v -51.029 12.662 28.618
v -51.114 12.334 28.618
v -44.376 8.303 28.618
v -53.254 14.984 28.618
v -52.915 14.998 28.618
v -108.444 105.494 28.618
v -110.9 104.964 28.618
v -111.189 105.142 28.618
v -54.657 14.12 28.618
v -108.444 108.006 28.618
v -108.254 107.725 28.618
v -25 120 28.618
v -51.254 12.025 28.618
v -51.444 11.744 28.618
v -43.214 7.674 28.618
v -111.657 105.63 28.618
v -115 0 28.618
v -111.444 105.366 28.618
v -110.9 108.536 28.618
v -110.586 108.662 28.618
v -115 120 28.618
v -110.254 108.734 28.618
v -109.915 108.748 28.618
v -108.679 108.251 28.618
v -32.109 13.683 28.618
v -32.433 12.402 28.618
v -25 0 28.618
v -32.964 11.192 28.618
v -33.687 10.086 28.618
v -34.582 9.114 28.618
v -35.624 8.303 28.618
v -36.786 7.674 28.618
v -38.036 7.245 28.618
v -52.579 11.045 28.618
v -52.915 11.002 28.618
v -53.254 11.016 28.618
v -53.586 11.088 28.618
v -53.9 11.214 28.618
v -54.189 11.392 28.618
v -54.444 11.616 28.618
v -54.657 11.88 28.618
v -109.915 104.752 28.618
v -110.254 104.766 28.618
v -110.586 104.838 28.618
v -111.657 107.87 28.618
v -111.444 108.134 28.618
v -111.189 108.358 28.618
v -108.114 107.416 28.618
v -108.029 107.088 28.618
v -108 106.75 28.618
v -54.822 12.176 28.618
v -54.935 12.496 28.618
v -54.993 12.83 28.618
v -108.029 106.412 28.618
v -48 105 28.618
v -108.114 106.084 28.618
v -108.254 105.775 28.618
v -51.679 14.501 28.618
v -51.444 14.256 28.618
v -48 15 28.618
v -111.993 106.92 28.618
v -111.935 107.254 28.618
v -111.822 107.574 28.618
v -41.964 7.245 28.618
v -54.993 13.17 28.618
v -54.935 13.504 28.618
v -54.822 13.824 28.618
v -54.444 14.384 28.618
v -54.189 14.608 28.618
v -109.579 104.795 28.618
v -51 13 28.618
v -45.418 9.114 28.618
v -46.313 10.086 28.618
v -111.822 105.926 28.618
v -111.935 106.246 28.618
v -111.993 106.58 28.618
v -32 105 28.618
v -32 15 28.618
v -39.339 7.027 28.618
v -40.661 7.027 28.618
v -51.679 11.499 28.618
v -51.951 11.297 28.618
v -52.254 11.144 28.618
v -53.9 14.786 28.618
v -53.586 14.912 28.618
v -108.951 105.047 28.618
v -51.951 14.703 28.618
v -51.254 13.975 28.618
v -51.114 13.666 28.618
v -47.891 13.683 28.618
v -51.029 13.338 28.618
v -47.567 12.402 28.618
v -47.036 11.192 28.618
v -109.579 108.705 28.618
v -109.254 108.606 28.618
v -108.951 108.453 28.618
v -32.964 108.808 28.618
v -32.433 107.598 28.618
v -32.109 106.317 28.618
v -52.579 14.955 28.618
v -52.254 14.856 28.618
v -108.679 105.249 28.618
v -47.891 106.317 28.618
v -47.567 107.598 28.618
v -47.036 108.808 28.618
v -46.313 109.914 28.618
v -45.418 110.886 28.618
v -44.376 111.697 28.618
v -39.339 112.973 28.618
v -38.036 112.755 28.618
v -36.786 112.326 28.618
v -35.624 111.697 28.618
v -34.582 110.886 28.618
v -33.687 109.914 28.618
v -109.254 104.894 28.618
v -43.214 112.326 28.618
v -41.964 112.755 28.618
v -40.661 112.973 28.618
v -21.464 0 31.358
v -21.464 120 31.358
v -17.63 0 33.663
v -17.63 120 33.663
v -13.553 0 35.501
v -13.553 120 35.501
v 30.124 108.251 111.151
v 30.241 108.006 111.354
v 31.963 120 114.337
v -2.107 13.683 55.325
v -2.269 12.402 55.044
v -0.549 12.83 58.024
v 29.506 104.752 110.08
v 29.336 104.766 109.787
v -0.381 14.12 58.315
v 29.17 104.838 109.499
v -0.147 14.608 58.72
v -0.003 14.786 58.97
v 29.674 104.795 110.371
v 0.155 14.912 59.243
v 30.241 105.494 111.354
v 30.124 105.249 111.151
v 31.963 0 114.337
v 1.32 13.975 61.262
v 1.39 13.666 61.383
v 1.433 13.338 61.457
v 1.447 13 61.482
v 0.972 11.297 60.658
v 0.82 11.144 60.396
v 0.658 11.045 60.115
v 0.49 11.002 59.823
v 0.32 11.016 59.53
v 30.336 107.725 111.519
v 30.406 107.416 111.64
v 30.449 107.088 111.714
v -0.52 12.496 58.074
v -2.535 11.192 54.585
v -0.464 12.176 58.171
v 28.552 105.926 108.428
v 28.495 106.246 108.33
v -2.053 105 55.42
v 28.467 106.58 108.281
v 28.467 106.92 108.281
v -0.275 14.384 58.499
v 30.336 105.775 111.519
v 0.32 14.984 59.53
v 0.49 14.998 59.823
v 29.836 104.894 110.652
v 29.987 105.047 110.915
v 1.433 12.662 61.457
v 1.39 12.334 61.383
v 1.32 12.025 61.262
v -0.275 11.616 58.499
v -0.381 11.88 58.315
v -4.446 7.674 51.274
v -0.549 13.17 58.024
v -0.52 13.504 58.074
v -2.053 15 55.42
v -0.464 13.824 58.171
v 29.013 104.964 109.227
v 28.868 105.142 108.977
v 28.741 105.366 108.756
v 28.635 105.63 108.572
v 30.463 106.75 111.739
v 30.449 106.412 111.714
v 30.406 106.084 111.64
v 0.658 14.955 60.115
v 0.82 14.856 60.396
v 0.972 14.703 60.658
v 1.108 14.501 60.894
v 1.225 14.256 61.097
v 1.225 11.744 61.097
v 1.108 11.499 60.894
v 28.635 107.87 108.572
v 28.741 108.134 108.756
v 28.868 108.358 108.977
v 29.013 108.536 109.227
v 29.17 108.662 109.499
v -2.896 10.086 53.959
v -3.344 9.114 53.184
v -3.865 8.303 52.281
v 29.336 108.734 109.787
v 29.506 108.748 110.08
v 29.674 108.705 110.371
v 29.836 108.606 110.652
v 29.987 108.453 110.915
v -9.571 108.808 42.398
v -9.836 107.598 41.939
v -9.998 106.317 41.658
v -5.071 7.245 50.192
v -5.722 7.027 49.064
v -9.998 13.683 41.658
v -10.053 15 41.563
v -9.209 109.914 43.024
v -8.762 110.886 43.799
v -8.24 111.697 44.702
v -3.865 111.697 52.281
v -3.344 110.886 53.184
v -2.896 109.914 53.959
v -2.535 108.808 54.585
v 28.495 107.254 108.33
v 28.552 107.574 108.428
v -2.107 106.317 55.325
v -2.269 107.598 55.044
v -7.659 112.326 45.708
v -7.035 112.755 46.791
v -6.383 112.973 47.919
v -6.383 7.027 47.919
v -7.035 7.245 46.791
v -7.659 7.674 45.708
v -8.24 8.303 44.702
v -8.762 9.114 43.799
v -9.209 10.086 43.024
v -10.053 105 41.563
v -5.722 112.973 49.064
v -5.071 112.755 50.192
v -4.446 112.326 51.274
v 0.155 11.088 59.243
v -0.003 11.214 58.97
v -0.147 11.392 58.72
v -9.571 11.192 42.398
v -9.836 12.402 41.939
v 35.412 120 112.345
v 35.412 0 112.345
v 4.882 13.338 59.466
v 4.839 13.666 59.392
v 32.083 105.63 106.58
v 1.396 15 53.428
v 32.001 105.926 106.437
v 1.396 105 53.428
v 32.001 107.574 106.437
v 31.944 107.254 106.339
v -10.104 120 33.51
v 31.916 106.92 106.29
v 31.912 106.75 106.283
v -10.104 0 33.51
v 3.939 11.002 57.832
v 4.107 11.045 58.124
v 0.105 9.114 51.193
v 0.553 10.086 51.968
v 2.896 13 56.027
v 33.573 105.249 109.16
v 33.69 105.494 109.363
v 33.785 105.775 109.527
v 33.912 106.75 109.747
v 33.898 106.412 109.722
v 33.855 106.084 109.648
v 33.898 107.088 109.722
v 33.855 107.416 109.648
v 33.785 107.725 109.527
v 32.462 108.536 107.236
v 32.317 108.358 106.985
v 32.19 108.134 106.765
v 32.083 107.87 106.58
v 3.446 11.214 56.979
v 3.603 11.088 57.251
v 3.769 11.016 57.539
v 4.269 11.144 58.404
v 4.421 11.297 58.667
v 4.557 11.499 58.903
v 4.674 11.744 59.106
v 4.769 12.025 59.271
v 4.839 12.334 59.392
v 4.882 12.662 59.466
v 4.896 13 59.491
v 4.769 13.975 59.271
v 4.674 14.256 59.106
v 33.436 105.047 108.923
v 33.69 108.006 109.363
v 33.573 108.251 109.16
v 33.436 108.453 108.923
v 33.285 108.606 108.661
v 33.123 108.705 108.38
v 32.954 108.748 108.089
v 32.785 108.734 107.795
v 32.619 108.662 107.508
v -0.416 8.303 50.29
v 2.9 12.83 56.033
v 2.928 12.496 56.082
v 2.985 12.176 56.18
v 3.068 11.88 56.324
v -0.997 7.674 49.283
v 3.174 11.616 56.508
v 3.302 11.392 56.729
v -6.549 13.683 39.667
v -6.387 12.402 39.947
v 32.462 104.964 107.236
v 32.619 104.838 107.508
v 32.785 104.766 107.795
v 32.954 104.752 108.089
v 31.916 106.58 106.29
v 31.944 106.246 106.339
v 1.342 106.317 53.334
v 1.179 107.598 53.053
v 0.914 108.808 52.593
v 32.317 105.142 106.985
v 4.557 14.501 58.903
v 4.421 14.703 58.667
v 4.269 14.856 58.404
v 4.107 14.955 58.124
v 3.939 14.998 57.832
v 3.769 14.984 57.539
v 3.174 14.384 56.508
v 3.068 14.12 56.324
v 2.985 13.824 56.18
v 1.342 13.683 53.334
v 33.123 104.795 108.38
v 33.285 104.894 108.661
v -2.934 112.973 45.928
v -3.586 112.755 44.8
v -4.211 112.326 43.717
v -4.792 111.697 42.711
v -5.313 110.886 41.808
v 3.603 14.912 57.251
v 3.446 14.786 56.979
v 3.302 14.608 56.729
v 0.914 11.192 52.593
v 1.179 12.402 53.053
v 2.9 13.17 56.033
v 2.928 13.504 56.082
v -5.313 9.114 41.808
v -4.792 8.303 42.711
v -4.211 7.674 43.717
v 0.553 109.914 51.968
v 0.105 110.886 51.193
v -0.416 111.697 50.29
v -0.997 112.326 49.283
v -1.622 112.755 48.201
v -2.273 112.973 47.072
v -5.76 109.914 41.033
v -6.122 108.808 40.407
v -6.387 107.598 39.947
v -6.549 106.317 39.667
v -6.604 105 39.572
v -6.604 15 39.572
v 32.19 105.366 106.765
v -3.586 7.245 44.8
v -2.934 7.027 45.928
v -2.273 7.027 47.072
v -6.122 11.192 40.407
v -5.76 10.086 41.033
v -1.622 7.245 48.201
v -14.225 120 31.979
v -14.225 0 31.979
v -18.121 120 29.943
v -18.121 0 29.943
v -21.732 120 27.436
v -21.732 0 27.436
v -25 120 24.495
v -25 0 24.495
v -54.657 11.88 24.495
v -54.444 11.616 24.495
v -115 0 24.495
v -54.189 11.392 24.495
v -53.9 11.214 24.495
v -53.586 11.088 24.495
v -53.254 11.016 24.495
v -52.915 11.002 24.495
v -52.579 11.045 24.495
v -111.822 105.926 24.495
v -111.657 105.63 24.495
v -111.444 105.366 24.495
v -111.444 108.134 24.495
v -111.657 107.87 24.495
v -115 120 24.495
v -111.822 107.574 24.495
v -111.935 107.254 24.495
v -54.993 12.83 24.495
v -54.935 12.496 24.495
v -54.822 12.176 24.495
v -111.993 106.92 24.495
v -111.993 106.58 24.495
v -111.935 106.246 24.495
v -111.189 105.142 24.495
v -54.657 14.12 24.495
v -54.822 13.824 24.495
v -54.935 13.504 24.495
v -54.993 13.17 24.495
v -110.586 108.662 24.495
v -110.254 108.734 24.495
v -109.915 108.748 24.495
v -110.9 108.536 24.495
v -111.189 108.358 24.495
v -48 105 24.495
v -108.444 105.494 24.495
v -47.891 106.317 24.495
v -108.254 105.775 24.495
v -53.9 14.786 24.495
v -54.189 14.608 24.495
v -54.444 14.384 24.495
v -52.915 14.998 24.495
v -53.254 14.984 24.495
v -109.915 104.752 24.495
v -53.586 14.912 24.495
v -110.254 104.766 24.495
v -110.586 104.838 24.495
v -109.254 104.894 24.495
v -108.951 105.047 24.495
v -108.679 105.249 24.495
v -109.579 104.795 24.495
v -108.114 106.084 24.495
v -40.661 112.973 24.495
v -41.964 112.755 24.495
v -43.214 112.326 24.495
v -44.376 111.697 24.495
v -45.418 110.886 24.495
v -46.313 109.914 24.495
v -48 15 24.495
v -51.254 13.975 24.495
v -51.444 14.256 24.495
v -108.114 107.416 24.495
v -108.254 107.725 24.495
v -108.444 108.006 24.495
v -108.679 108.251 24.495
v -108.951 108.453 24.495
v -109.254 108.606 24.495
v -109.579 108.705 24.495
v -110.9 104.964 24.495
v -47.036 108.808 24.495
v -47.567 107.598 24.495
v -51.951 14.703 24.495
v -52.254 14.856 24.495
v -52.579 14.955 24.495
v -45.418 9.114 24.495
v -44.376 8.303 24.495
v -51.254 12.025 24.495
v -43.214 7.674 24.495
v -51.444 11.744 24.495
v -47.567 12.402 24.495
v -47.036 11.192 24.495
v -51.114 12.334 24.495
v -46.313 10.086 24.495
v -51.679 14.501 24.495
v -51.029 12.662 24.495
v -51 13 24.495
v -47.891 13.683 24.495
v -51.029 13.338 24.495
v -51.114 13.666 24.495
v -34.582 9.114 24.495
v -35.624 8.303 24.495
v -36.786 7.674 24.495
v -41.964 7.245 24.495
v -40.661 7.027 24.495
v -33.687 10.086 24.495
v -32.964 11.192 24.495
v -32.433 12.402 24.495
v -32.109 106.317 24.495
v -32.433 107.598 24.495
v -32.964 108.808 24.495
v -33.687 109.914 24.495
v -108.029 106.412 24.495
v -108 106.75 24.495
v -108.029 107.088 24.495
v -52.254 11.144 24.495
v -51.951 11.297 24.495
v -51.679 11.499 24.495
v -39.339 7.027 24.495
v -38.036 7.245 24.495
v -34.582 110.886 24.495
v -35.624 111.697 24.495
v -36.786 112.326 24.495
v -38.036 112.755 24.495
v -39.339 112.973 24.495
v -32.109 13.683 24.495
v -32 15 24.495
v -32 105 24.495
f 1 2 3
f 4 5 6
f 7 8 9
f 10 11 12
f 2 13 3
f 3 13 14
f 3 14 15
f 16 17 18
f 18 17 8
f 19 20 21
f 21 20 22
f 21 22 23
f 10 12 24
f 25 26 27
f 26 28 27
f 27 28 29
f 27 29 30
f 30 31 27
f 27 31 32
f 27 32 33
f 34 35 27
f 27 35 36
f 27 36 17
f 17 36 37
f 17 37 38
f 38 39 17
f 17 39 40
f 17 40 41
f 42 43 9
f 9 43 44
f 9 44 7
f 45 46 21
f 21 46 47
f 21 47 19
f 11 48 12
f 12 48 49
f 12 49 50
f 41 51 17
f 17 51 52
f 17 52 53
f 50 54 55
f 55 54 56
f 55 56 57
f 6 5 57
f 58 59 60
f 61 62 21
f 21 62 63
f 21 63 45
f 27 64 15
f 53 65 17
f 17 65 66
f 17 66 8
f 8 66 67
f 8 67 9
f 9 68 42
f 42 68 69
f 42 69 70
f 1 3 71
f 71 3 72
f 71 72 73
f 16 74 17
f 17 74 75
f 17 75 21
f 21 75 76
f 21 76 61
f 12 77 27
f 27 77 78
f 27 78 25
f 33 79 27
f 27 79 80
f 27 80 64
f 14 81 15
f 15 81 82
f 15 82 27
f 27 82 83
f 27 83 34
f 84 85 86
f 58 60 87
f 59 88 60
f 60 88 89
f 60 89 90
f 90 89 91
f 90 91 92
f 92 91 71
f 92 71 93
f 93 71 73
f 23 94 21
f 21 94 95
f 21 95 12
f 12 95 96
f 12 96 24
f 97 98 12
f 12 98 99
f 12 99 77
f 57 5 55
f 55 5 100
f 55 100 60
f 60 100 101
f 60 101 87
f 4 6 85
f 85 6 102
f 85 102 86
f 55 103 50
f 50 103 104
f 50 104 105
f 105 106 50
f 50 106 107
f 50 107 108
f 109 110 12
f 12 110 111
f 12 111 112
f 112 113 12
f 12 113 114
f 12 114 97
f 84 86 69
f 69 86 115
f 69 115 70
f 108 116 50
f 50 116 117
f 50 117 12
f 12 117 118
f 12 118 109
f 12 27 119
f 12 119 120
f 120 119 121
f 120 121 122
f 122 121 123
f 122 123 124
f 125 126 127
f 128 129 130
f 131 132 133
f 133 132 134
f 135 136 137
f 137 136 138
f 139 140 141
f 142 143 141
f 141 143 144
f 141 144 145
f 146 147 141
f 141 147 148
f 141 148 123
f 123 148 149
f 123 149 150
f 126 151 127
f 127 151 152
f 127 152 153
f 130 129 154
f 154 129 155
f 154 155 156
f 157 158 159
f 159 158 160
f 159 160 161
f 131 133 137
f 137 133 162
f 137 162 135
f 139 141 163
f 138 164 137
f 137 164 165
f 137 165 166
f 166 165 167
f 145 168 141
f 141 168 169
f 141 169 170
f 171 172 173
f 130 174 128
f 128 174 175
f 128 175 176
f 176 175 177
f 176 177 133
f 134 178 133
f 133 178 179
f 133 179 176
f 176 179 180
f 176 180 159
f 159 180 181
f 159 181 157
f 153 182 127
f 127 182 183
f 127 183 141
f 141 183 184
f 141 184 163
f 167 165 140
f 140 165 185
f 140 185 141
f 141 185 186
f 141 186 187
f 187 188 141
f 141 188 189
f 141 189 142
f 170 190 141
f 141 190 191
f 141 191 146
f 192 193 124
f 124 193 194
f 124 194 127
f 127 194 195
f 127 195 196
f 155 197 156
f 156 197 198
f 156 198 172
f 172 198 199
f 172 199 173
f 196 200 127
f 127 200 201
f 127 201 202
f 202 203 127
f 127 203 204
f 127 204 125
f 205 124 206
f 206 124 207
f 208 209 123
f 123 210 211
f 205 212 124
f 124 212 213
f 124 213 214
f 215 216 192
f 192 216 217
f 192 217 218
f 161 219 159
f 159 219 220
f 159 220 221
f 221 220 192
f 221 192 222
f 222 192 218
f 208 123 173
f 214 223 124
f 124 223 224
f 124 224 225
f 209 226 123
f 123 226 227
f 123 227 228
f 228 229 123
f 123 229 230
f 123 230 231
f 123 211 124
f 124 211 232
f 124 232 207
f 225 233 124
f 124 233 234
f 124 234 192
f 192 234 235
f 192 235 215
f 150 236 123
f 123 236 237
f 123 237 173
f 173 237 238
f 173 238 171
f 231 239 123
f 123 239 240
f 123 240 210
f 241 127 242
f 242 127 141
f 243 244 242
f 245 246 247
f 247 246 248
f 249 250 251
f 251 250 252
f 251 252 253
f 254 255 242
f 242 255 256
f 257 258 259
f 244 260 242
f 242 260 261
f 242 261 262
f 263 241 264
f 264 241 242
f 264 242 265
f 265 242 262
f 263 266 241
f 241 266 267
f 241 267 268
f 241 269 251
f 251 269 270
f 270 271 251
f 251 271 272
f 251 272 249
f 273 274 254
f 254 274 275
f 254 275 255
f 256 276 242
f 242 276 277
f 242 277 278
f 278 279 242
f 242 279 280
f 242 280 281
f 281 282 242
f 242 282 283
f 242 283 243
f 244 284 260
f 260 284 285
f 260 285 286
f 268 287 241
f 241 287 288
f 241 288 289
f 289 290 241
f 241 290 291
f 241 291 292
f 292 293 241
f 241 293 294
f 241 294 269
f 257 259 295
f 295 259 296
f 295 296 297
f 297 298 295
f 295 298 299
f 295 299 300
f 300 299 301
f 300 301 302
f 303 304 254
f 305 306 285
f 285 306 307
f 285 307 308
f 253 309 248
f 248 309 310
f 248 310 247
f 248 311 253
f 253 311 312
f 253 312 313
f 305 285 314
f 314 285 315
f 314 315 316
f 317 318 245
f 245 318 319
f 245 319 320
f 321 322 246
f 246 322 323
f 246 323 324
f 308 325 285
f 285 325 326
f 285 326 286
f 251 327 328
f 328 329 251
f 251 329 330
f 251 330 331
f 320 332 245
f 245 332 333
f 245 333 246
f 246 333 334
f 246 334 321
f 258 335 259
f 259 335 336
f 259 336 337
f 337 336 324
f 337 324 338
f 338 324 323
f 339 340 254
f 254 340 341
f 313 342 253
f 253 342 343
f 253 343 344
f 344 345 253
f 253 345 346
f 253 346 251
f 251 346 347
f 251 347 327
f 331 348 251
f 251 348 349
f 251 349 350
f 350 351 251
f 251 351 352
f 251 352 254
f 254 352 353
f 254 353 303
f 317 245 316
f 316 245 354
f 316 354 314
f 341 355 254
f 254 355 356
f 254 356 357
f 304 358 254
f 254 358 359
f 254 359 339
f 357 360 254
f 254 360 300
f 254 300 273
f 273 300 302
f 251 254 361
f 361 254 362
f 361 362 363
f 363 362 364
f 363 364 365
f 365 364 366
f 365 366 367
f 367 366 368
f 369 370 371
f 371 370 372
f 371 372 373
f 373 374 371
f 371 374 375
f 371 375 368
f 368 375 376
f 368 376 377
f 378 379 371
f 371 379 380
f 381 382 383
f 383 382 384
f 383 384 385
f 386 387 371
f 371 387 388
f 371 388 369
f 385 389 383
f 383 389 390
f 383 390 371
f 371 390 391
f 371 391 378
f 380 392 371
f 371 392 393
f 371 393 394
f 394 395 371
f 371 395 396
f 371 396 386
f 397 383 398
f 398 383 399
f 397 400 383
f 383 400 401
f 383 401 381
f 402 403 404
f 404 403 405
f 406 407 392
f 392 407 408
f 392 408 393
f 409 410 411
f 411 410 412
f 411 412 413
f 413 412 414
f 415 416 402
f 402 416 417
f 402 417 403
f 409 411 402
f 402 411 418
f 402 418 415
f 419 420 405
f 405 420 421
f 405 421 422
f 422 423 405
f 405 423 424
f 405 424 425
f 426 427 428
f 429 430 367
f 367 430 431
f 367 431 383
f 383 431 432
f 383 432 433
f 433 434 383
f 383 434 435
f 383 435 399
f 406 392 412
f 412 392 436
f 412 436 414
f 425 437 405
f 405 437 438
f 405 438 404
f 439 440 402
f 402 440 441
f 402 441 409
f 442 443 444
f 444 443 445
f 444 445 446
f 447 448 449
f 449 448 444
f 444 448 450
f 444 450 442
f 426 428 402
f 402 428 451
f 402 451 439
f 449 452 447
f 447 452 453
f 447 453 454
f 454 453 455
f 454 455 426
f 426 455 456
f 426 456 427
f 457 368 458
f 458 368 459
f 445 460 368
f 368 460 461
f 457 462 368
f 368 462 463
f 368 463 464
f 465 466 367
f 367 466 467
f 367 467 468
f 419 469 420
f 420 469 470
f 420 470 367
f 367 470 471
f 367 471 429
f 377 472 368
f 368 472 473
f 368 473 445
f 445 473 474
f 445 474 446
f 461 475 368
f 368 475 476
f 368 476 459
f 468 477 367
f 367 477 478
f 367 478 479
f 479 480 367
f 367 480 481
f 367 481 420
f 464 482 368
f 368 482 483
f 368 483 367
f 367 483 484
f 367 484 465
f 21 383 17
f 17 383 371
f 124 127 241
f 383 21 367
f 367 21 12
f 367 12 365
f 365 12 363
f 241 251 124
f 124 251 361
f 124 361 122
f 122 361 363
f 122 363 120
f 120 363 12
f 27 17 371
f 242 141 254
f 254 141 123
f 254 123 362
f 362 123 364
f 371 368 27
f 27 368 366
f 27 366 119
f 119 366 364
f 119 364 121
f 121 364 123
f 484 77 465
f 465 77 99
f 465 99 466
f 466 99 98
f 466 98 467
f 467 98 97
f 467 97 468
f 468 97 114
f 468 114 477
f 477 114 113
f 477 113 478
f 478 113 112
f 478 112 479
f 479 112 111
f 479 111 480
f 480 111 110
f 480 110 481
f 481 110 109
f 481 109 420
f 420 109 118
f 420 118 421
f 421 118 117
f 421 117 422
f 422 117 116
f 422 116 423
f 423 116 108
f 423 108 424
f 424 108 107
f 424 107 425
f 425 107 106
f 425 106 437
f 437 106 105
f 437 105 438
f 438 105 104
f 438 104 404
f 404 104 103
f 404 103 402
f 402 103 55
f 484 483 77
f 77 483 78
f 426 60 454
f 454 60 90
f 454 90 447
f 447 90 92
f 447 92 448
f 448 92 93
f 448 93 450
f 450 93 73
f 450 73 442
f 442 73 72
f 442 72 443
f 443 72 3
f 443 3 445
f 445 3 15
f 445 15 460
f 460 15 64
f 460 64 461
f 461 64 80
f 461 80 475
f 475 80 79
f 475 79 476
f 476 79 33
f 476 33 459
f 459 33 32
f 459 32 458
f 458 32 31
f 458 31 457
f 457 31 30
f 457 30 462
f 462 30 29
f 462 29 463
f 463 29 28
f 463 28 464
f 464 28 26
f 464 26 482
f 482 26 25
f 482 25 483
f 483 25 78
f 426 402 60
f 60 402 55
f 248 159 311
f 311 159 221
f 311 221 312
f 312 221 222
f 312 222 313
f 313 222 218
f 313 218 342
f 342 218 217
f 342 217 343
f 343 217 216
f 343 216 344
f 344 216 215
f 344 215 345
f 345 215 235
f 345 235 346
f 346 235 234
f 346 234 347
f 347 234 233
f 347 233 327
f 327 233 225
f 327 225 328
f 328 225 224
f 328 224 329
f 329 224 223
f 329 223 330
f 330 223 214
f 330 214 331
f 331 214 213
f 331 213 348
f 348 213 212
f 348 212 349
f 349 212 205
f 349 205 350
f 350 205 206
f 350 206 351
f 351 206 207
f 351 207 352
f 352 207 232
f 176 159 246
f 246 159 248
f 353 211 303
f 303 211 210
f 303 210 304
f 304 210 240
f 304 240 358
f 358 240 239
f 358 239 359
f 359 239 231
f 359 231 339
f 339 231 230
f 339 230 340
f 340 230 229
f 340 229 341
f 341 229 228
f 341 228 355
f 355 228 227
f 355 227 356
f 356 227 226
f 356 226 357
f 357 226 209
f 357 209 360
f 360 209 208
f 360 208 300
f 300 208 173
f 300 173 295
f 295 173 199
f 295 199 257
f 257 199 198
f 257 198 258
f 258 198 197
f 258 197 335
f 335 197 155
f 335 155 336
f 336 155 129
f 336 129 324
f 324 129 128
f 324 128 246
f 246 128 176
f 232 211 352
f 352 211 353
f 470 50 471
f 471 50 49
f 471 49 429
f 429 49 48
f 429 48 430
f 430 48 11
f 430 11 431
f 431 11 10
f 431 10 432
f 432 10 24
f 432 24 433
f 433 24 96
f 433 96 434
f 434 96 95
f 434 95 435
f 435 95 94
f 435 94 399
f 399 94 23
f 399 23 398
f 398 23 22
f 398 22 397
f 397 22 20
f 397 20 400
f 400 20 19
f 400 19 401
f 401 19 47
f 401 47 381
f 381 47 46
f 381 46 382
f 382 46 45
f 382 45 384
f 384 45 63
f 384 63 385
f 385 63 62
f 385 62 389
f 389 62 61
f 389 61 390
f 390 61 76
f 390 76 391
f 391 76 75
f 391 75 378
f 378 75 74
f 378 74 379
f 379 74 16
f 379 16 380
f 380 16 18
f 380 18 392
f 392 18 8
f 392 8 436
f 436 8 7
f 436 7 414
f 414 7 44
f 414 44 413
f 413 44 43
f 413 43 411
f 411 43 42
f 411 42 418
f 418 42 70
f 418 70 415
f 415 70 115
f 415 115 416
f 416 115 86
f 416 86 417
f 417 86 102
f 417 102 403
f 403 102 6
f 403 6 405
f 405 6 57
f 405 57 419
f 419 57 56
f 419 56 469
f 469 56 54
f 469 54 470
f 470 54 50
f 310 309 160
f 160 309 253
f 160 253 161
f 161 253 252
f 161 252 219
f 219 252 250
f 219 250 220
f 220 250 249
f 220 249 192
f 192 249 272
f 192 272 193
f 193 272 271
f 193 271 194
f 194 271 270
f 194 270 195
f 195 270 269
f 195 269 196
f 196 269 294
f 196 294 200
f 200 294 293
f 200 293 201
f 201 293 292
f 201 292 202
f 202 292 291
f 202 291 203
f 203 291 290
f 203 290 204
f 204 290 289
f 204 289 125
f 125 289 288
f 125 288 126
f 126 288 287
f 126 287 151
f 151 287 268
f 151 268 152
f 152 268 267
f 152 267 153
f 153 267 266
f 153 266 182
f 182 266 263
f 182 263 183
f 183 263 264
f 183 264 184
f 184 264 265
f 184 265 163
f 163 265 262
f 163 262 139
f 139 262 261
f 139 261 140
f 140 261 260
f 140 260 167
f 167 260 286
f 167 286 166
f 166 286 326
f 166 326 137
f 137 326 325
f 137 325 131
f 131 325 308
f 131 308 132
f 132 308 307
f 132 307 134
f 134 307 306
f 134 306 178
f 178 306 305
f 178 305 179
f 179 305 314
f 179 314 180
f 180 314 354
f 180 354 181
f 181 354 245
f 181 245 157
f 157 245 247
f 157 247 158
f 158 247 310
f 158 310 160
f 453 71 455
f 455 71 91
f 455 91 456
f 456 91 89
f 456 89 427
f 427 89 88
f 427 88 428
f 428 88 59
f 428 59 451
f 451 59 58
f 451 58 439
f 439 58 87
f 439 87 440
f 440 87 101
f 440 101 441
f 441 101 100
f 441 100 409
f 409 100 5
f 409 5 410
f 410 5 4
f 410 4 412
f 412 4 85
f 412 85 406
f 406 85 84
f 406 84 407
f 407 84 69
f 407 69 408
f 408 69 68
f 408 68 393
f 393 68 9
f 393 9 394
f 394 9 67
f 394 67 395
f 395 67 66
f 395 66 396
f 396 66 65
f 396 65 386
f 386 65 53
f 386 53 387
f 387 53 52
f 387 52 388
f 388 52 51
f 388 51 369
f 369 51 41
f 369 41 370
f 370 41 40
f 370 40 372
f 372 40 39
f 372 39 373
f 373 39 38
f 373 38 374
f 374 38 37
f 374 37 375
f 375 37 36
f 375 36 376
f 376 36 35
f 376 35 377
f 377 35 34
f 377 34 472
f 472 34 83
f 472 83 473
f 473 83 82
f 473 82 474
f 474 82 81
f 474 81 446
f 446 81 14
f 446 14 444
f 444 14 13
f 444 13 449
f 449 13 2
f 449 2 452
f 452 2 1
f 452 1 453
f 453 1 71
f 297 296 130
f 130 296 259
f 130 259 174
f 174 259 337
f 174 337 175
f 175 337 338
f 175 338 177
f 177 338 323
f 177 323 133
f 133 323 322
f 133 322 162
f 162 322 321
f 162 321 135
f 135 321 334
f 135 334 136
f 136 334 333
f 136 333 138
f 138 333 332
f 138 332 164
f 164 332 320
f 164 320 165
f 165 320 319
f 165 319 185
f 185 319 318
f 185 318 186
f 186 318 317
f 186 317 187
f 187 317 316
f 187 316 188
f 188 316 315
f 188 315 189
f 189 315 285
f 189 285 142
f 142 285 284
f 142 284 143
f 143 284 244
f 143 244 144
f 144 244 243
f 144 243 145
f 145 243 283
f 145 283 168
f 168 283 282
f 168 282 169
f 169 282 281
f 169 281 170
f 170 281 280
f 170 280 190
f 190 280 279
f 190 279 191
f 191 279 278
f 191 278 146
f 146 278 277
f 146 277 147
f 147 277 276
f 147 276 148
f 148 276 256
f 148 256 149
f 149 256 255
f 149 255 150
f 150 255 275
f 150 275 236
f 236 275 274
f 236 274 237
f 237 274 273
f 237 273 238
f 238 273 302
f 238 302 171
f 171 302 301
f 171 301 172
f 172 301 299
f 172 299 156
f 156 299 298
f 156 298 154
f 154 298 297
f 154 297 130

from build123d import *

# Parameters (mm, degrees)
BOSS_EXTRU_1_DEPTH      = 120
ENL_V_MAT_EXTRU_1_DEPTH = 188.009777727
ENL_V_MAT_EXTRU_2_DEPTH = 180.784310366
ESQUISSE6_R             = 2
ENL_V_MAT_EXTRU_3_DEPTH = 188.009777727
ESQUISSE7_R             = 2
ENL_V_MAT_EXTRU_4_DEPTH = 180.784310366
ESQUISSE8_R             = 2
ENL_V_MAT_EXTRU_5_DEPTH = 188.009777727
ESQUISSE9_R             = 2
ENL_V_MAT_EXTRU_6_DEPTH = 180.784310366


with BuildPart() as part:
    # Esquisse3 → Boss.-Extru.1 (new body)
    with BuildSketch(Plane(origin=(0, 0, 0), x_dir=(1, 0, 0), z_dir=(0, 1, 0))):
        with BuildLine():
            ThreePointArc((-10.103808925, -33.509894736), (-18.121448463, -29.943498553), (-25, -24.494897428))
            Line((-25, -24.494897428), (-115, -24.494897428))
            Line((-115, -24.494897428), (-115, -28.618176043))
            Line((-115, -28.618176043), (-25, -28.618176043))
            ThreePointArc((-25, -28.618176043), (-19.581111, -32.566548666), (-13.552631037, -35.50107311))
            Line((-13.552631037, -35.50107311), (31.963111135, -114.336651096))
            Line((31.963111135, -114.336651096), (35.411933246, -112.345472721))
            Line((35.411933246, -112.345472721), (-10.103808925, -33.509894736))
        make_face()
    extrude(amount=BOSS_EXTRU_1_DEPTH)

    # Esquisse4 → Enlèv. mat.-Extru.1 (cut, through all)
    with BuildSketch(Plane.XY.offset(28.618176043)):
        with BuildLine():
            Line((-48, 105), (-48, 15))
            ThreePointArc((-48, 15), (-40, 7), (-32, 15))
            Line((-32, 15), (-32, 105))
            ThreePointArc((-32, 105), (-40, 113), (-48, 105))
        make_face()
    extrude(amount=-ENL_V_MAT_EXTRU_1_DEPTH, mode=Mode.SUBTRACT)

    # Esquisse5 → Enlèv. mat.-Extru.2 (cut, through all)
    with BuildSketch(Plane(origin=(-25.536888865, 0, 14.743729661), x_dir=(0.4999999999999999, 0, 0.8660254037844386), z_dir=(-0.8660254037844387, 0, 0.49999999999999994))):
        with BuildLine():
            Line((46.968515657, 105), (46.968515657, 15))
            ThreePointArc((46.968515657, 15), (38.968515657, 7), (30.968515657, 15))
            Line((30.968515657, 15), (30.968515657, 105))
            ThreePointArc((30.968515657, 105), (38.968515657, 113), (46.968515657, 105))
        make_face()
    extrude(amount=-ENL_V_MAT_EXTRU_2_DEPTH, mode=Mode.SUBTRACT)

    # Esquisse6 → Enlèv. mat.-Extru.3 (cut, through all)
    with BuildSketch(Plane.XY.offset(28.618176043)):
        with Locations((-110, 106.75)):
            Circle(ESQUISSE6_R)
    extrude(amount=-ENL_V_MAT_EXTRU_3_DEPTH, mode=Mode.SUBTRACT)

    # Esquisse7 → Enlèv. mat.-Extru.4 (cut, through all)
    with BuildSketch(Plane(origin=(-25.536888865, 0, 14.743729661), x_dir=(0.4999999999999999, 0, 0.8660254037844386), z_dir=(-0.8660254037844387, 0, 0.49999999999999994))):
        with Locations((110, 106.75)):
            Circle(ESQUISSE7_R)
    extrude(amount=-ENL_V_MAT_EXTRU_4_DEPTH, mode=Mode.SUBTRACT)

    # Esquisse8 → Enlèv. mat.-Extru.5 (cut, through all)
    with BuildSketch(Plane.XY.offset(28.618176043)):
        with Locations((-53, 13)):
            Circle(ESQUISSE8_R)
    extrude(amount=-ENL_V_MAT_EXTRU_5_DEPTH, mode=Mode.SUBTRACT)

    # Esquisse9 → Enlèv. mat.-Extru.6 (cut, through all)
    with BuildSketch(Plane(origin=(-25.536888865, 0, 14.743729661), x_dir=(0.4999999999999999, 0, 0.8660254037844386), z_dir=(-0.8660254037844387, 0, 0.49999999999999994))):
        with Locations((51.968515657, 13)):
            Circle(ESQUISSE9_R)
    extrude(amount=-ENL_V_MAT_EXTRU_6_DEPTH, mode=Mode.SUBTRACT)


solid = part.part
